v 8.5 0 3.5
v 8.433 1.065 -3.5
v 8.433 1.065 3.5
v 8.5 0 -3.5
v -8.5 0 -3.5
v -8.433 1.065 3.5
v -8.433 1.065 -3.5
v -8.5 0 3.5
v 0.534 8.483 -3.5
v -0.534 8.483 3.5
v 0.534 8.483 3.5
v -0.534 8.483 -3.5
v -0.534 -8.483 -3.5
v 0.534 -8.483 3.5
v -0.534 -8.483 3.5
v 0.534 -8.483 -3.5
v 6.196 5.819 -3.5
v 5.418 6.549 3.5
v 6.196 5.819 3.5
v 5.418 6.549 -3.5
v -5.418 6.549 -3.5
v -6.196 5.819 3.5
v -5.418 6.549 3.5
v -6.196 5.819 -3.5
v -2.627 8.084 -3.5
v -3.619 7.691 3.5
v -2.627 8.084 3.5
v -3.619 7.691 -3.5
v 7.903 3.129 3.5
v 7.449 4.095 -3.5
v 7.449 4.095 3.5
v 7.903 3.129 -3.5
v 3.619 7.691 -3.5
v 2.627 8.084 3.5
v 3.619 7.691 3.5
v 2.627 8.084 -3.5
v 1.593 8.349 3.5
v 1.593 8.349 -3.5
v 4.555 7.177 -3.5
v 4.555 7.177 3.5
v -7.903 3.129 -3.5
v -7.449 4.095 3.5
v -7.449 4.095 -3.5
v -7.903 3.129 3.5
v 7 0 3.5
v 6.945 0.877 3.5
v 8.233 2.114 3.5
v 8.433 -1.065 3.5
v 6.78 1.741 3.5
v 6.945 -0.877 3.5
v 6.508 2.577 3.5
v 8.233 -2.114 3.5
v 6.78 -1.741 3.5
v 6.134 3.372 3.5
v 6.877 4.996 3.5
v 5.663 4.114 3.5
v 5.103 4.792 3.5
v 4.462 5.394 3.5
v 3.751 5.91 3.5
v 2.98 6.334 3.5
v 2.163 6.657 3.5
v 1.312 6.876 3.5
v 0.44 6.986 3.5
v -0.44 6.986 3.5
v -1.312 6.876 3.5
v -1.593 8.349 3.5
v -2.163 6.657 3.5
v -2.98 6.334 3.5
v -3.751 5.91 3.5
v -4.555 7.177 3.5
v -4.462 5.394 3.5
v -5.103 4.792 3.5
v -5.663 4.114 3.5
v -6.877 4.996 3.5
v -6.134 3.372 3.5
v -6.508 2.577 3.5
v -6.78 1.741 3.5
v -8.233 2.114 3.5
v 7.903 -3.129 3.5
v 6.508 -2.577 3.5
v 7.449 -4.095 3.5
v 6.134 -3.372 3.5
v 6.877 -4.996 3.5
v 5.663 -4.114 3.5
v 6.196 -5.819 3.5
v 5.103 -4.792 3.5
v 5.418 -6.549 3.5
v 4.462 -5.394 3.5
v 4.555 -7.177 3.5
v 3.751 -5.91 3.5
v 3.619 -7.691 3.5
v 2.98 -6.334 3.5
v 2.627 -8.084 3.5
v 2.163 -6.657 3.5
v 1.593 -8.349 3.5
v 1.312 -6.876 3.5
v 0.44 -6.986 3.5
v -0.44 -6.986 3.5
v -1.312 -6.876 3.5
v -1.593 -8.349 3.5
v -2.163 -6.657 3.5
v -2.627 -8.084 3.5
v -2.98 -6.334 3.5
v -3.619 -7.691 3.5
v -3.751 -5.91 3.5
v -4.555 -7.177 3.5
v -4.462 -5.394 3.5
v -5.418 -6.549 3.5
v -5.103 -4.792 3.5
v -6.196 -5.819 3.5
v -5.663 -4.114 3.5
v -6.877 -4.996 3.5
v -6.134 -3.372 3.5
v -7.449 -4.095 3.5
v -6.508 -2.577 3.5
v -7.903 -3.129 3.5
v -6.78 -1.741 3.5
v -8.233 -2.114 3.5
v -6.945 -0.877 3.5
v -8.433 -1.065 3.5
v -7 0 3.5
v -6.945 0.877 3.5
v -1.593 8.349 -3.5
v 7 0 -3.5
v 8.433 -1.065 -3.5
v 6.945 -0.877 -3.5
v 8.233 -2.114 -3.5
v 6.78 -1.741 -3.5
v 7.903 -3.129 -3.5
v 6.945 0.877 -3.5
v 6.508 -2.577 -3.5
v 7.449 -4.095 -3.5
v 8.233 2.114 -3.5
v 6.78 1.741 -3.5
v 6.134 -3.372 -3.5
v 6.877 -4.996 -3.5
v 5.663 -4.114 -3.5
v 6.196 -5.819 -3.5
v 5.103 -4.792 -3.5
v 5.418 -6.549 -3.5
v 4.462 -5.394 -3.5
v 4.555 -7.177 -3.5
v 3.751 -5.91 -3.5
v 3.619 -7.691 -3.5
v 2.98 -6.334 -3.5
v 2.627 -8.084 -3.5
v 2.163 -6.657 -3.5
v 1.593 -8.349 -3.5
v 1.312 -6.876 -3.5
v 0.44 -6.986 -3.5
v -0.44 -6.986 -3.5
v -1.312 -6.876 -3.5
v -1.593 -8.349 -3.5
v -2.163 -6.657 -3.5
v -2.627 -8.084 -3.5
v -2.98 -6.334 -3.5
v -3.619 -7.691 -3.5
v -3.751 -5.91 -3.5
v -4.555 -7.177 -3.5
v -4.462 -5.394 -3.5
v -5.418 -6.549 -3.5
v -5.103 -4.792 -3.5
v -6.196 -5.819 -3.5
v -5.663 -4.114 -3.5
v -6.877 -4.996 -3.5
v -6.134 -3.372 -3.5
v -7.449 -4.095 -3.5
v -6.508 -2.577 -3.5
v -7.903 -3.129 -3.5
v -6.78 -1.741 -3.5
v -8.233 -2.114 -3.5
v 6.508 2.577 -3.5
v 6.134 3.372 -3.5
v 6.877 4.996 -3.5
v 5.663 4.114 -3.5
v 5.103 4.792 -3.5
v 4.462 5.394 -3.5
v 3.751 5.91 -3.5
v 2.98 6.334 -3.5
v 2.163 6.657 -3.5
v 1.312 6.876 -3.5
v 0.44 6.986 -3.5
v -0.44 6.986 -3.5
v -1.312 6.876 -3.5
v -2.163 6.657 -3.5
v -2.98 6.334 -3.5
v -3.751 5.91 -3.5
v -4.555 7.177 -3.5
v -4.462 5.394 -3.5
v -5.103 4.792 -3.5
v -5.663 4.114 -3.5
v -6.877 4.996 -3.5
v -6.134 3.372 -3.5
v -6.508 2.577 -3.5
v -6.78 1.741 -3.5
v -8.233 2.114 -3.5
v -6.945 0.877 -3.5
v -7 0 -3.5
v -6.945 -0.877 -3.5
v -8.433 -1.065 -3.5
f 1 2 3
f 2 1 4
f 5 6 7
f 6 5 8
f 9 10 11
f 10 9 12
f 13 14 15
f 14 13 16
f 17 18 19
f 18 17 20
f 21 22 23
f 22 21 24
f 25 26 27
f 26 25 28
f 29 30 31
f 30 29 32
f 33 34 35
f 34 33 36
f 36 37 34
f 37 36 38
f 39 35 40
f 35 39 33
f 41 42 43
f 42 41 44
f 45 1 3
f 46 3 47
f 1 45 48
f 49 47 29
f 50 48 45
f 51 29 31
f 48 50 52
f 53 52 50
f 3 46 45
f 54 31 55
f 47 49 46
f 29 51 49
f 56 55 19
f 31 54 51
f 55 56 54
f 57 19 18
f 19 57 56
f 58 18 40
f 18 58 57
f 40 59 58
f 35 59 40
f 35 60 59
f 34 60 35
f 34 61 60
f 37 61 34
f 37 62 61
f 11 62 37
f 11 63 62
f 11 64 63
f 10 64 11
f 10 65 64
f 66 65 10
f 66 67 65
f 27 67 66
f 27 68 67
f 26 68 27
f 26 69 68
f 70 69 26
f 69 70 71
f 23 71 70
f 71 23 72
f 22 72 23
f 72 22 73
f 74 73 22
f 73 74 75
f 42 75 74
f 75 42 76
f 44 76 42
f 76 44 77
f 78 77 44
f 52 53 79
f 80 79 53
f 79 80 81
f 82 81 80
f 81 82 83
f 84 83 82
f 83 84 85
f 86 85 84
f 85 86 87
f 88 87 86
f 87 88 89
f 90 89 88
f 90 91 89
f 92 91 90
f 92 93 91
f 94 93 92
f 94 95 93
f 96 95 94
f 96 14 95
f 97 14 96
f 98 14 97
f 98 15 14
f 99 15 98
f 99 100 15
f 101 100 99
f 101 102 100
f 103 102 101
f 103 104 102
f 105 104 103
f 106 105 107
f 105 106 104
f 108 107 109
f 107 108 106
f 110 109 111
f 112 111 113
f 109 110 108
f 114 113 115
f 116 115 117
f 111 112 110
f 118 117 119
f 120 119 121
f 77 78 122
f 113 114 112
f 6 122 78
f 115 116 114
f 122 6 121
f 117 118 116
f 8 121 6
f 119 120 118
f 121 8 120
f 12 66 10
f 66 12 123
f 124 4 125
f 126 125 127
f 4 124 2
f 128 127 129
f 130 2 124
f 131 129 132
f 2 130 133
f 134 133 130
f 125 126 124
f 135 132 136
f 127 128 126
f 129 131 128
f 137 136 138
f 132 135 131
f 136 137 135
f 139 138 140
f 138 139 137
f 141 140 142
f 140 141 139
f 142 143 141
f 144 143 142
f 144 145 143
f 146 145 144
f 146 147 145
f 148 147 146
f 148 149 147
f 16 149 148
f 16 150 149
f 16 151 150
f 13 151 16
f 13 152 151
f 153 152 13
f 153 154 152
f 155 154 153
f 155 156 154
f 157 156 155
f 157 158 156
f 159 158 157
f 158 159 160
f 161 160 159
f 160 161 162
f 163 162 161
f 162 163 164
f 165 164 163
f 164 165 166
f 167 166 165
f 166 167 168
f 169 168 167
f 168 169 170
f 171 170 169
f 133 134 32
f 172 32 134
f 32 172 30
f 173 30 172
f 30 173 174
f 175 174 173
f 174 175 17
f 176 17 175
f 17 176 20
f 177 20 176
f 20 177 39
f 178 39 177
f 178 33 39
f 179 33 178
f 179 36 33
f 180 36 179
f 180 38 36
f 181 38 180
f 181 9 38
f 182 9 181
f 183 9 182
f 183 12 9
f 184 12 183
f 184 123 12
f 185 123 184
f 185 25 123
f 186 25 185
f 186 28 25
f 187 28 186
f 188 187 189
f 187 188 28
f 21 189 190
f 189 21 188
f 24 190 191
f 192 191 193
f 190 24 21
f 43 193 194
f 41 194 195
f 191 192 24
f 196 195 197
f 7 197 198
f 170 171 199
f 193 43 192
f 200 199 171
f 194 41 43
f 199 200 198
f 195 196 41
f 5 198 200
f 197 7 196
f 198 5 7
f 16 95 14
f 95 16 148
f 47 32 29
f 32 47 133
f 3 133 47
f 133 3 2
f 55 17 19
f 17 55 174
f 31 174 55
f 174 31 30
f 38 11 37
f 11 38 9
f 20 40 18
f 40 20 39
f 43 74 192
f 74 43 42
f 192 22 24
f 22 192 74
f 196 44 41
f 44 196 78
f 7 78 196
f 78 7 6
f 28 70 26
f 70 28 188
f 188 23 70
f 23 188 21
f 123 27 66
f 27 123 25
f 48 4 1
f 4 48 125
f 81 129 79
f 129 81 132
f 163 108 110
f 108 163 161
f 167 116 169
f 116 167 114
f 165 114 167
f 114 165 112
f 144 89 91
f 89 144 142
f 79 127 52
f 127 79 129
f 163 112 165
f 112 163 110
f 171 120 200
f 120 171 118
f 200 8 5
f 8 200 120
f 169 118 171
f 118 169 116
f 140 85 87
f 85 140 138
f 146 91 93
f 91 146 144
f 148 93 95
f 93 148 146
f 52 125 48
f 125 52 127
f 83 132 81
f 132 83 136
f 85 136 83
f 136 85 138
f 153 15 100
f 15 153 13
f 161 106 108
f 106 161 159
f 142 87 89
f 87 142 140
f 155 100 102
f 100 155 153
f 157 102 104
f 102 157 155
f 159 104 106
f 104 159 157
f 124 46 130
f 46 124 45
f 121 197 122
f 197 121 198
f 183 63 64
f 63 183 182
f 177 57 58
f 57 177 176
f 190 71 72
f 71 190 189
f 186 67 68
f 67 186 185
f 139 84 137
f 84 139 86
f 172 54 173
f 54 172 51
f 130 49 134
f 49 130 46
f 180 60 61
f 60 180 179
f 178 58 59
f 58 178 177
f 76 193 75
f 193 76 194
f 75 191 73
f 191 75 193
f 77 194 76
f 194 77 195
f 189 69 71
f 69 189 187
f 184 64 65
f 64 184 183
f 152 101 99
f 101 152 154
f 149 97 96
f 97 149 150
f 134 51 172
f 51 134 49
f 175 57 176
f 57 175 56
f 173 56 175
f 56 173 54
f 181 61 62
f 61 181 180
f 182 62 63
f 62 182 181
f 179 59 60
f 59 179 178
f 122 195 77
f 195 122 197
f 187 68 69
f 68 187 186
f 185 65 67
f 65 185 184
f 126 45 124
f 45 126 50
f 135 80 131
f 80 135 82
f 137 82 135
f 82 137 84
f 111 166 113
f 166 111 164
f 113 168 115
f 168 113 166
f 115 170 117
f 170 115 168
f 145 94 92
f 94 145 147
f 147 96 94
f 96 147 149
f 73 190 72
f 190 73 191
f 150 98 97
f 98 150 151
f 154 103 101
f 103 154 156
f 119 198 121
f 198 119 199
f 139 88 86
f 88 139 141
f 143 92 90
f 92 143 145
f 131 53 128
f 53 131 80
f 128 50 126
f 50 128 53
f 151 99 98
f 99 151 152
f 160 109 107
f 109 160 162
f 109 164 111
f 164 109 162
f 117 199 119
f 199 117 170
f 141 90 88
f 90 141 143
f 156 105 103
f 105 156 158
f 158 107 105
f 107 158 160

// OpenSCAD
$fn = 50;


difference() {
	union() {
		translate(v = [0, 0, -3.5000000000]) {
			cylinder(h = 7, r = 8.5000000000);
		}
	}
	union() {
		translate(v = [0, 0, -100.0000000000]) {
			cylinder(h = 200, r = 7);
		}
	}
}
